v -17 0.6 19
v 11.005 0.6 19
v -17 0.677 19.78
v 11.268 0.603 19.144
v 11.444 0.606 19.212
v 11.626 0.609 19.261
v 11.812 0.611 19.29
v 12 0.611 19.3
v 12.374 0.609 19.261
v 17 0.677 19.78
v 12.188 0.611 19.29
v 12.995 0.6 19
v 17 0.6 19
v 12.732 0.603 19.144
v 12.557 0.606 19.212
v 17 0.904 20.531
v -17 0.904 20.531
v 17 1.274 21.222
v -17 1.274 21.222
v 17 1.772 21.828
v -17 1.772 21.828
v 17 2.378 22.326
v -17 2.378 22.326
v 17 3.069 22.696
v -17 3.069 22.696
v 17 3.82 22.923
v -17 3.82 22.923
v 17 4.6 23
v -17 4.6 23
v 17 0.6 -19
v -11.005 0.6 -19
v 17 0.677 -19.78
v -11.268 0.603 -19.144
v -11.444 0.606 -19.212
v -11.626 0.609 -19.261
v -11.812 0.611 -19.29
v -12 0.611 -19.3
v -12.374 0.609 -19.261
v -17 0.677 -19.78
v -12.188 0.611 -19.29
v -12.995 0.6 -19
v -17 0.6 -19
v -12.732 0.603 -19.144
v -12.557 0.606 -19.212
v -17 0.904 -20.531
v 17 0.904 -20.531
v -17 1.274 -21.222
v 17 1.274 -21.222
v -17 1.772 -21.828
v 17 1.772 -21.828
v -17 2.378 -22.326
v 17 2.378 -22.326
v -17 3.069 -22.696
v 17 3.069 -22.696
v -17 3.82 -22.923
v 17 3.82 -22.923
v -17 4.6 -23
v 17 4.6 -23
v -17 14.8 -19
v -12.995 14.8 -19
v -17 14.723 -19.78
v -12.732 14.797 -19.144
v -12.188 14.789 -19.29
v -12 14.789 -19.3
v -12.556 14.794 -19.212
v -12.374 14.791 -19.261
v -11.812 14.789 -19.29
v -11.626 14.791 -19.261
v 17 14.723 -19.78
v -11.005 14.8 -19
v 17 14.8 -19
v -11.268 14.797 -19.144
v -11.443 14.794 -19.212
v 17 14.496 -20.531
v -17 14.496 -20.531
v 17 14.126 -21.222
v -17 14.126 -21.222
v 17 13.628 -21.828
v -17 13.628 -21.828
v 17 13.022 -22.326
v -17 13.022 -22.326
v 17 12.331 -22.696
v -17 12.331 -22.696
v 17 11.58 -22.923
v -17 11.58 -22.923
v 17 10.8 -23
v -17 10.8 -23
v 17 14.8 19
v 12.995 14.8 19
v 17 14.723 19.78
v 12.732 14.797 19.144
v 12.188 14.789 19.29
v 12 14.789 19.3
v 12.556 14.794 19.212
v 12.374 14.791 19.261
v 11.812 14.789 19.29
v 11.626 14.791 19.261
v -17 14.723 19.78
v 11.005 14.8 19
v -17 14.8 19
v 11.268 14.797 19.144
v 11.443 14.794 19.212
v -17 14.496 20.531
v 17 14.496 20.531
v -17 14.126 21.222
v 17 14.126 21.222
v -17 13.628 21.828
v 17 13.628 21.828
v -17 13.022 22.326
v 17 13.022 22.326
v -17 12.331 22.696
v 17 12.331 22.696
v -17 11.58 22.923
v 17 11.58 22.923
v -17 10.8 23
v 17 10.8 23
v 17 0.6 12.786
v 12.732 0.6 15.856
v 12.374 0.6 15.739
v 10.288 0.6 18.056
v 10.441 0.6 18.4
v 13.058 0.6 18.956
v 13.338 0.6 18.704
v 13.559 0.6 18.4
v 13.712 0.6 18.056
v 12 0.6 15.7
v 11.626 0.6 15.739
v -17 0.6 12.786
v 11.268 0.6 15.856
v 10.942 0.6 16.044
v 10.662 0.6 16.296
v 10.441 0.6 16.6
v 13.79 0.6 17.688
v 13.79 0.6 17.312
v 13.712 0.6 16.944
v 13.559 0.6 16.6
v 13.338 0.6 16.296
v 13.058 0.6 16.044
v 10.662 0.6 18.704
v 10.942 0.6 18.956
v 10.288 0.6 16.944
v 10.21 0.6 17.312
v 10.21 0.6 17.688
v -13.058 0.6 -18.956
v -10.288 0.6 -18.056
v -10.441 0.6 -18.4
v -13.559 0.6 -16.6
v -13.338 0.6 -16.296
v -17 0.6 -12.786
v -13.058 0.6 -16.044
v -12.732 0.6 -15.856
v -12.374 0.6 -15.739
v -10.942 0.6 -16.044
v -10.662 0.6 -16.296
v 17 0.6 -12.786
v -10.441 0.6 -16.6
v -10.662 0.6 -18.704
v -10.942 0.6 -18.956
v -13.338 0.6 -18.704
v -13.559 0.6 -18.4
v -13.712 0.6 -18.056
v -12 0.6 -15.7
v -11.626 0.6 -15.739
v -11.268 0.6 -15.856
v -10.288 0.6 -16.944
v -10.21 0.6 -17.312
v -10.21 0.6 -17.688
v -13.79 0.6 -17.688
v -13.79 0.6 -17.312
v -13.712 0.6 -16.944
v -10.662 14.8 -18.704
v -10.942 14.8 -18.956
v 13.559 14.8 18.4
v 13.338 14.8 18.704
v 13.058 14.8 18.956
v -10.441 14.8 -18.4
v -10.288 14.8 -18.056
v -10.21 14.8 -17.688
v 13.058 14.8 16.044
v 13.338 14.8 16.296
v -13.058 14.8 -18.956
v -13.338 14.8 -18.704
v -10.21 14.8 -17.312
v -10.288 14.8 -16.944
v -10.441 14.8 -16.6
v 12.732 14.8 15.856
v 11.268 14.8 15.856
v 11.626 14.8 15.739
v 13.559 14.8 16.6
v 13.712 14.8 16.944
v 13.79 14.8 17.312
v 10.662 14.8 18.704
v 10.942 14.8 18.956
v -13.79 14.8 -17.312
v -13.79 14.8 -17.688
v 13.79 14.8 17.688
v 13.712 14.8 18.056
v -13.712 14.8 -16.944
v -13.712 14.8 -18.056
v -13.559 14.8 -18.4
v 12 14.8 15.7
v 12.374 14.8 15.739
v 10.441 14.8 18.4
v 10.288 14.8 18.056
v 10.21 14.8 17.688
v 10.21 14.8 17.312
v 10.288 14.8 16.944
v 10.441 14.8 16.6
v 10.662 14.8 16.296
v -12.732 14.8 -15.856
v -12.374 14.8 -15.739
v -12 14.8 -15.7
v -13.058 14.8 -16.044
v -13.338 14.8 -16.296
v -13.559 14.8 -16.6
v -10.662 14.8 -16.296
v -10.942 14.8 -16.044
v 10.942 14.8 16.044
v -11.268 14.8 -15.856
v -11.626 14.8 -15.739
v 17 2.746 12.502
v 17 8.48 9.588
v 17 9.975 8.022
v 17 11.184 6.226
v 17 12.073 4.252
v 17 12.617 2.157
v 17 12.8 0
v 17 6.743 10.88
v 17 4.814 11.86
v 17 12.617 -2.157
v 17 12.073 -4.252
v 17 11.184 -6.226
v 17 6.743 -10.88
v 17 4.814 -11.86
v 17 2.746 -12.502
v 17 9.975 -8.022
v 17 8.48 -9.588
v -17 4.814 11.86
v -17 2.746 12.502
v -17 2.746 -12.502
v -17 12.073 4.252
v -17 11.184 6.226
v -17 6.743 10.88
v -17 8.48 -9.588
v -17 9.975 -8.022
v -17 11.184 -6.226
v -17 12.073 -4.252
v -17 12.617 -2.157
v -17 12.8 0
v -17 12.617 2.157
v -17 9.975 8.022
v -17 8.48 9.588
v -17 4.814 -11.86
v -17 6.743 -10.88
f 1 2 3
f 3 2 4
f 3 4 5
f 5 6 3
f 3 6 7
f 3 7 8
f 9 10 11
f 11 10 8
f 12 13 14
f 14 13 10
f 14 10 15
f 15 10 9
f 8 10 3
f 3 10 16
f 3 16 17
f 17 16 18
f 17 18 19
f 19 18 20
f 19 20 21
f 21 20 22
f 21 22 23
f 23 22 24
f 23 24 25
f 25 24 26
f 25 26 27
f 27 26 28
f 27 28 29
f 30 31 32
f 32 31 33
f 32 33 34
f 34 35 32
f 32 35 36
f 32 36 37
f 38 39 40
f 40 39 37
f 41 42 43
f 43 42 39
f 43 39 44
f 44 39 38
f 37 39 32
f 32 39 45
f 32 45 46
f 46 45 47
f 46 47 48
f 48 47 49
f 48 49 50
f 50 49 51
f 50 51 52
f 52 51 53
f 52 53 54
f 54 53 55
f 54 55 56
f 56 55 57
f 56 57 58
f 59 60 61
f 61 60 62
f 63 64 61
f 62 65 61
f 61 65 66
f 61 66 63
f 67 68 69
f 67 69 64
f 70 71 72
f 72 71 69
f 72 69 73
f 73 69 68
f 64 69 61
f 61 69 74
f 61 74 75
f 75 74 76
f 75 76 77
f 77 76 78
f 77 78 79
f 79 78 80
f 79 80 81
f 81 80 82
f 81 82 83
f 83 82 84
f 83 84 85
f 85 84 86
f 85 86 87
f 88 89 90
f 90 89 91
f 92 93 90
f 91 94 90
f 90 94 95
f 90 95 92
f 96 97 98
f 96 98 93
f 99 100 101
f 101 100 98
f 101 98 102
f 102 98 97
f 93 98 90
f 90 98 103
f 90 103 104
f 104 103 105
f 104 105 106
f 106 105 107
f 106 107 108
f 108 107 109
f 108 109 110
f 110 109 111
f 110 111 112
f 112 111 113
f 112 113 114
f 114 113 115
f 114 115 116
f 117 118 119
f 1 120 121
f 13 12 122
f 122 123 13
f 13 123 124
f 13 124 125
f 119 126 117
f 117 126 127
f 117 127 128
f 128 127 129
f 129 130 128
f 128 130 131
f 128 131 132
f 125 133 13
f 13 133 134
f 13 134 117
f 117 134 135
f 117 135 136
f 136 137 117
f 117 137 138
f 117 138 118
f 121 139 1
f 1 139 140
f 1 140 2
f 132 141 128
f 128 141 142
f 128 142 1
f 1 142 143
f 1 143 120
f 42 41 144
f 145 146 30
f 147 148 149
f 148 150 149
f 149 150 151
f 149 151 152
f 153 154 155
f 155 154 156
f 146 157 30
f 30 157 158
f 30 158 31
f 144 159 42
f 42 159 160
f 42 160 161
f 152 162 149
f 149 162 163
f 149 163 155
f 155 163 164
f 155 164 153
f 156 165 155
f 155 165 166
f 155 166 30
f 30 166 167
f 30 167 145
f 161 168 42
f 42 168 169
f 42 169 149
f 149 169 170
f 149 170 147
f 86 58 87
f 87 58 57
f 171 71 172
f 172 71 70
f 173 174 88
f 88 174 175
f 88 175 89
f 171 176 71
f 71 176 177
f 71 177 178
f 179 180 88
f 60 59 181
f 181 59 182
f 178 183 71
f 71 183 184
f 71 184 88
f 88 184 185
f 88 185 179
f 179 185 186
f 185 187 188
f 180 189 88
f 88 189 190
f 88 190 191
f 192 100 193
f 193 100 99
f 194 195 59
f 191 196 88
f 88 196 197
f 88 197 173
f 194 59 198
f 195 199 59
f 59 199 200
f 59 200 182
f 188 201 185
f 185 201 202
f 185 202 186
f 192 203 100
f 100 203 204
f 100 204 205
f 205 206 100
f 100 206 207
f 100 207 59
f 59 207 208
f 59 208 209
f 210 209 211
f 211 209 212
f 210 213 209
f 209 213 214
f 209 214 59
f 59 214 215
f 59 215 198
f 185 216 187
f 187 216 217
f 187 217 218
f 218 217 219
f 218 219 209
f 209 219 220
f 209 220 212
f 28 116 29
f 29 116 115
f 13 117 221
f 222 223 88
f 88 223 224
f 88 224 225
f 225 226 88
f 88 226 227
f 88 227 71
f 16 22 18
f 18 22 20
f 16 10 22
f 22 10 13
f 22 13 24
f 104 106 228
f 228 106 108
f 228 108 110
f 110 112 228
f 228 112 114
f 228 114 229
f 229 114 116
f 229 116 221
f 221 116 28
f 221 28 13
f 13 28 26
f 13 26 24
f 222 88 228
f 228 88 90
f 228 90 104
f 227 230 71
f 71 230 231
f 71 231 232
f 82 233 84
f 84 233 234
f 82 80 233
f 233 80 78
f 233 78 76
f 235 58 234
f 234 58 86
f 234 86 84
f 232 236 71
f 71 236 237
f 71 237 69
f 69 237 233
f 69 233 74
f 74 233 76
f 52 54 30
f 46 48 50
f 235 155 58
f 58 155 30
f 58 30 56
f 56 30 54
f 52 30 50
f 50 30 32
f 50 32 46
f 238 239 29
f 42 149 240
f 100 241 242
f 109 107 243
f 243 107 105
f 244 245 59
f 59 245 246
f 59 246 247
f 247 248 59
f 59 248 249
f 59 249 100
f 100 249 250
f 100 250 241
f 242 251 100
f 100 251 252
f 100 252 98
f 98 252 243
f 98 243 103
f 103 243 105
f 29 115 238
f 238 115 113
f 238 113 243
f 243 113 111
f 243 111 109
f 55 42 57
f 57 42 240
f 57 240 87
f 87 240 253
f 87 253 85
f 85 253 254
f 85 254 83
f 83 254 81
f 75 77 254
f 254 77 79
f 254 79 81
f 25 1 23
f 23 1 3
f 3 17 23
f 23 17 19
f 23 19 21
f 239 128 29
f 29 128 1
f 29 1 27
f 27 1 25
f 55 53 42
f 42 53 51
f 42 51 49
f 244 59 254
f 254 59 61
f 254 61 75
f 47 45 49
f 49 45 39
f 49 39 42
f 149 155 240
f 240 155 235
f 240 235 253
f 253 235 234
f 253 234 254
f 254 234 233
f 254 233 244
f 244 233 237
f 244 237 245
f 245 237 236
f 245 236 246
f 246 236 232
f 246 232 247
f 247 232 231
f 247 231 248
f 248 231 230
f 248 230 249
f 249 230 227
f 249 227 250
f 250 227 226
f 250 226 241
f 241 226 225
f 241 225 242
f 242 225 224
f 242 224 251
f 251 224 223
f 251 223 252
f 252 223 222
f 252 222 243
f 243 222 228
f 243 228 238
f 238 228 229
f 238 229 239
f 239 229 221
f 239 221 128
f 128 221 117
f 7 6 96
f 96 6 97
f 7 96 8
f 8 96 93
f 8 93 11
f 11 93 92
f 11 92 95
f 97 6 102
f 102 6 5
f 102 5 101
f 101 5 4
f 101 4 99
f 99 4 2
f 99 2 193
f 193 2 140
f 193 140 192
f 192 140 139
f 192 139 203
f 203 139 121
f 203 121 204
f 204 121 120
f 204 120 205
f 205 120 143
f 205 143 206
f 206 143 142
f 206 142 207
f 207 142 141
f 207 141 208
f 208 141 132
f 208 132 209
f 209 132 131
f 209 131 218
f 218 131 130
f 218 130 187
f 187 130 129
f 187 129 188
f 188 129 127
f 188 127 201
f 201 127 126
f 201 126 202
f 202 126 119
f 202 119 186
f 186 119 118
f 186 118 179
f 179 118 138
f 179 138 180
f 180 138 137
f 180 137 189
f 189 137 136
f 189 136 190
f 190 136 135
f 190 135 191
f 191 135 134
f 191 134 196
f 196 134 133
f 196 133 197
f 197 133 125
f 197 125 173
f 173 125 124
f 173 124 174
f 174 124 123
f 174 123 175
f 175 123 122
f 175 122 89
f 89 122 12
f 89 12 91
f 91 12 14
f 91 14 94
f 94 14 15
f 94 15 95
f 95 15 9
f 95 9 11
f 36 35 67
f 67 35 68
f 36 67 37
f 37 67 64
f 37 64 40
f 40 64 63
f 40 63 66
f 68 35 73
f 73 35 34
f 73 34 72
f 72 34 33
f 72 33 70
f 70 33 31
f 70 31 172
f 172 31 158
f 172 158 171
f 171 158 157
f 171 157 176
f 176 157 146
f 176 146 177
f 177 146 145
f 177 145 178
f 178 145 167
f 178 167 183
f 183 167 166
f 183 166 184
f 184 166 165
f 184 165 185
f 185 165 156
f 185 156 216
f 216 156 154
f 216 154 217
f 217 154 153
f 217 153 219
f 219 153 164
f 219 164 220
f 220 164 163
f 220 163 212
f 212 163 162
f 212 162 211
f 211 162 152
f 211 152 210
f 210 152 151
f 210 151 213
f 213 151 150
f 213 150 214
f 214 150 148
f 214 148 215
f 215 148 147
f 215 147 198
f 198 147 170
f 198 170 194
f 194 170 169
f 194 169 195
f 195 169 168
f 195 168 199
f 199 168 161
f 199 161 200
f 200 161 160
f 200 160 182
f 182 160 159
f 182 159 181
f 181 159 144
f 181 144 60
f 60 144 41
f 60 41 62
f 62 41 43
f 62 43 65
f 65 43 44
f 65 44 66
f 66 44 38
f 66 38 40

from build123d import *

# Parameters (mm, degrees)
BOSS_EXTRUDE1_DEPTH     = 17
CUT_EXTRUDE1_DEPTH      = 33.20310544
CUT_EXTRUDE1_DEPTH_BACK = 33.20310544
SKETCH2_R               = 12.8
SKETCH3_R               = 1.8
CUT_EXTRUDE2_DEPTH      = 14.8


with BuildPart() as part:
    # Sketch1 → Boss-Extrude1 (new, symmetric)
    with BuildSketch(Plane(origin=(0, 0, 0), x_dir=(0, 0, -1), z_dir=(1, 0, 0))):
        with BuildLine():
            Line((-19, 0.6), (19, 0.6))
            ThreePointArc((19, 0.6), (21.828427125, 1.771572875), (23, 4.6))
            Line((23, 4.6), (23, 10.8))
            ThreePointArc((23, 10.8), (21.828427125, 13.628427125), (19, 14.8))
            Line((19, 14.8), (-19, 14.8))
            ThreePointArc((-19, 14.8), (-21.828427125, 13.628427125), (-23, 10.8))
            Line((-23, 10.8), (-23, 4.6))
            ThreePointArc((-23, 4.6), (-21.828427125, 1.771572875), (-19, 0.6))
        make_face()
    extrude(amount=BOSS_EXTRUDE1_DEPTH, both=True)

    # Sketch2 → Cut-Extrude1 (cut, two sides: drawn at the far end of the back side and taken through both)
    with BuildSketch(Plane(origin=(0, 0, 0), x_dir=(0, 0, -1), z_dir=(1, 0, 0)).offset(-CUT_EXTRUDE1_DEPTH_BACK)):
        Circle(SKETCH2_R)
    extrude(amount=CUT_EXTRUDE1_DEPTH + CUT_EXTRUDE1_DEPTH_BACK, mode=Mode.SUBTRACT)

    # Sketch3 → Cut-Extrude2 (cut)
    with BuildSketch(Plane(origin=(0, 0.6, 0), x_dir=(1, 0, 0), z_dir=(0, 1, 0))):
        with Locations(Location((12, -17.5, 0), (0, 0, 236.442690238))):
            Circle(SKETCH3_R)
        with Locations(Location((-12, 17.5, 0), (0, 0, 123.557309762))):
            Circle(SKETCH3_R)
    extrude(amount=CUT_EXTRUDE2_DEPTH, mode=Mode.SUBTRACT)


solid = part.part
